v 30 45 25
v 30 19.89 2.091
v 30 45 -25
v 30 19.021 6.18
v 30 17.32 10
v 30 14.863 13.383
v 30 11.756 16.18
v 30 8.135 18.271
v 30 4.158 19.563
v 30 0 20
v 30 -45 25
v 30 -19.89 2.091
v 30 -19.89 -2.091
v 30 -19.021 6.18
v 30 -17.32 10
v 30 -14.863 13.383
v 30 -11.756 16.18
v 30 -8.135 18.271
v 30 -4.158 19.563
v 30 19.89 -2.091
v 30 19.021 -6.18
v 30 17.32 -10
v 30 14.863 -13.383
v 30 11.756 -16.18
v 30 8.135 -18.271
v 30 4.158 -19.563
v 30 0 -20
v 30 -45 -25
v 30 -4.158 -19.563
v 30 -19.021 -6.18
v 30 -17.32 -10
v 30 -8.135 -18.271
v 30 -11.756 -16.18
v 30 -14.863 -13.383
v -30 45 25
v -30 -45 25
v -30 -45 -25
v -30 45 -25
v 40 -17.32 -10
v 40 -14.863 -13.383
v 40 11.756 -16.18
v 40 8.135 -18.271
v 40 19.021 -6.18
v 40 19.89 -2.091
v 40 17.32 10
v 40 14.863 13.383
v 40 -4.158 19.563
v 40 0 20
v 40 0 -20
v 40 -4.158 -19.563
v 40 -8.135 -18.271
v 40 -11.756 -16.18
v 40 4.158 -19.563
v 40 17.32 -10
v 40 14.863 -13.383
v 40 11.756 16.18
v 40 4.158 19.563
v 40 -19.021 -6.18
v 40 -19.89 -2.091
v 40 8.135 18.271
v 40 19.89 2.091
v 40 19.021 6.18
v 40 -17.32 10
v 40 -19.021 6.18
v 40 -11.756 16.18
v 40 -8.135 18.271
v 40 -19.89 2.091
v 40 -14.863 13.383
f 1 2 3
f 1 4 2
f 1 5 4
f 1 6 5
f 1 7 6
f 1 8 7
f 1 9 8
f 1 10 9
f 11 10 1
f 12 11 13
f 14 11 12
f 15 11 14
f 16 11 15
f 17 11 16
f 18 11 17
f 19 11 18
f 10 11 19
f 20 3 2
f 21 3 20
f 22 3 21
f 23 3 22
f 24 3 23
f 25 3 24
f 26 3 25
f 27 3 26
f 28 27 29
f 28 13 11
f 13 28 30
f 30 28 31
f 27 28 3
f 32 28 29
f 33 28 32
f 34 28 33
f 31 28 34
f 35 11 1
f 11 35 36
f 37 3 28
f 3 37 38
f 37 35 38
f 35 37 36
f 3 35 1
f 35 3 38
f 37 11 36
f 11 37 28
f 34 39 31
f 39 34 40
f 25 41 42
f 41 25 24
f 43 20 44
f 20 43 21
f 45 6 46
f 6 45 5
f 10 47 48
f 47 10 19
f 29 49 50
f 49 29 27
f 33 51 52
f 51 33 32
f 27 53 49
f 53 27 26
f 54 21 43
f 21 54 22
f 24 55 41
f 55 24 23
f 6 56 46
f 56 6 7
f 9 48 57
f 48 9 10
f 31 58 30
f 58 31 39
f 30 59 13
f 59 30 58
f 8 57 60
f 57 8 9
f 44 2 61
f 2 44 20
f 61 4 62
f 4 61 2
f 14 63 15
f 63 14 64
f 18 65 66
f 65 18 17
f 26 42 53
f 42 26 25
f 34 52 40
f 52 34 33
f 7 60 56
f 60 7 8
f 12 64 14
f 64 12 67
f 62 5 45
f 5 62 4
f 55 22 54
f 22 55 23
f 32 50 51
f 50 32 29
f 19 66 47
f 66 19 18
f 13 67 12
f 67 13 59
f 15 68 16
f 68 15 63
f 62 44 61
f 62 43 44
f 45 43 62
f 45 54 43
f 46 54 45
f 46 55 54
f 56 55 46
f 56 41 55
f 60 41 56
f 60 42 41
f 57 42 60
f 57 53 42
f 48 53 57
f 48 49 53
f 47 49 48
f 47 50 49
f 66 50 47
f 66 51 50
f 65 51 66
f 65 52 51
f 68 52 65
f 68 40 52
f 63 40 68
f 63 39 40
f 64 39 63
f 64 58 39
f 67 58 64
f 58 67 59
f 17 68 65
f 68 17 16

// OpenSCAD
module Camera(){
    color("#D0D0D0")
    cube([60, 90, 50], center=true);
    color("#505050")
    translate([30,0,0])
    rotate([0, 90, 0])
    cylinder(h=10, d=40, center=false);
}

Camera();
